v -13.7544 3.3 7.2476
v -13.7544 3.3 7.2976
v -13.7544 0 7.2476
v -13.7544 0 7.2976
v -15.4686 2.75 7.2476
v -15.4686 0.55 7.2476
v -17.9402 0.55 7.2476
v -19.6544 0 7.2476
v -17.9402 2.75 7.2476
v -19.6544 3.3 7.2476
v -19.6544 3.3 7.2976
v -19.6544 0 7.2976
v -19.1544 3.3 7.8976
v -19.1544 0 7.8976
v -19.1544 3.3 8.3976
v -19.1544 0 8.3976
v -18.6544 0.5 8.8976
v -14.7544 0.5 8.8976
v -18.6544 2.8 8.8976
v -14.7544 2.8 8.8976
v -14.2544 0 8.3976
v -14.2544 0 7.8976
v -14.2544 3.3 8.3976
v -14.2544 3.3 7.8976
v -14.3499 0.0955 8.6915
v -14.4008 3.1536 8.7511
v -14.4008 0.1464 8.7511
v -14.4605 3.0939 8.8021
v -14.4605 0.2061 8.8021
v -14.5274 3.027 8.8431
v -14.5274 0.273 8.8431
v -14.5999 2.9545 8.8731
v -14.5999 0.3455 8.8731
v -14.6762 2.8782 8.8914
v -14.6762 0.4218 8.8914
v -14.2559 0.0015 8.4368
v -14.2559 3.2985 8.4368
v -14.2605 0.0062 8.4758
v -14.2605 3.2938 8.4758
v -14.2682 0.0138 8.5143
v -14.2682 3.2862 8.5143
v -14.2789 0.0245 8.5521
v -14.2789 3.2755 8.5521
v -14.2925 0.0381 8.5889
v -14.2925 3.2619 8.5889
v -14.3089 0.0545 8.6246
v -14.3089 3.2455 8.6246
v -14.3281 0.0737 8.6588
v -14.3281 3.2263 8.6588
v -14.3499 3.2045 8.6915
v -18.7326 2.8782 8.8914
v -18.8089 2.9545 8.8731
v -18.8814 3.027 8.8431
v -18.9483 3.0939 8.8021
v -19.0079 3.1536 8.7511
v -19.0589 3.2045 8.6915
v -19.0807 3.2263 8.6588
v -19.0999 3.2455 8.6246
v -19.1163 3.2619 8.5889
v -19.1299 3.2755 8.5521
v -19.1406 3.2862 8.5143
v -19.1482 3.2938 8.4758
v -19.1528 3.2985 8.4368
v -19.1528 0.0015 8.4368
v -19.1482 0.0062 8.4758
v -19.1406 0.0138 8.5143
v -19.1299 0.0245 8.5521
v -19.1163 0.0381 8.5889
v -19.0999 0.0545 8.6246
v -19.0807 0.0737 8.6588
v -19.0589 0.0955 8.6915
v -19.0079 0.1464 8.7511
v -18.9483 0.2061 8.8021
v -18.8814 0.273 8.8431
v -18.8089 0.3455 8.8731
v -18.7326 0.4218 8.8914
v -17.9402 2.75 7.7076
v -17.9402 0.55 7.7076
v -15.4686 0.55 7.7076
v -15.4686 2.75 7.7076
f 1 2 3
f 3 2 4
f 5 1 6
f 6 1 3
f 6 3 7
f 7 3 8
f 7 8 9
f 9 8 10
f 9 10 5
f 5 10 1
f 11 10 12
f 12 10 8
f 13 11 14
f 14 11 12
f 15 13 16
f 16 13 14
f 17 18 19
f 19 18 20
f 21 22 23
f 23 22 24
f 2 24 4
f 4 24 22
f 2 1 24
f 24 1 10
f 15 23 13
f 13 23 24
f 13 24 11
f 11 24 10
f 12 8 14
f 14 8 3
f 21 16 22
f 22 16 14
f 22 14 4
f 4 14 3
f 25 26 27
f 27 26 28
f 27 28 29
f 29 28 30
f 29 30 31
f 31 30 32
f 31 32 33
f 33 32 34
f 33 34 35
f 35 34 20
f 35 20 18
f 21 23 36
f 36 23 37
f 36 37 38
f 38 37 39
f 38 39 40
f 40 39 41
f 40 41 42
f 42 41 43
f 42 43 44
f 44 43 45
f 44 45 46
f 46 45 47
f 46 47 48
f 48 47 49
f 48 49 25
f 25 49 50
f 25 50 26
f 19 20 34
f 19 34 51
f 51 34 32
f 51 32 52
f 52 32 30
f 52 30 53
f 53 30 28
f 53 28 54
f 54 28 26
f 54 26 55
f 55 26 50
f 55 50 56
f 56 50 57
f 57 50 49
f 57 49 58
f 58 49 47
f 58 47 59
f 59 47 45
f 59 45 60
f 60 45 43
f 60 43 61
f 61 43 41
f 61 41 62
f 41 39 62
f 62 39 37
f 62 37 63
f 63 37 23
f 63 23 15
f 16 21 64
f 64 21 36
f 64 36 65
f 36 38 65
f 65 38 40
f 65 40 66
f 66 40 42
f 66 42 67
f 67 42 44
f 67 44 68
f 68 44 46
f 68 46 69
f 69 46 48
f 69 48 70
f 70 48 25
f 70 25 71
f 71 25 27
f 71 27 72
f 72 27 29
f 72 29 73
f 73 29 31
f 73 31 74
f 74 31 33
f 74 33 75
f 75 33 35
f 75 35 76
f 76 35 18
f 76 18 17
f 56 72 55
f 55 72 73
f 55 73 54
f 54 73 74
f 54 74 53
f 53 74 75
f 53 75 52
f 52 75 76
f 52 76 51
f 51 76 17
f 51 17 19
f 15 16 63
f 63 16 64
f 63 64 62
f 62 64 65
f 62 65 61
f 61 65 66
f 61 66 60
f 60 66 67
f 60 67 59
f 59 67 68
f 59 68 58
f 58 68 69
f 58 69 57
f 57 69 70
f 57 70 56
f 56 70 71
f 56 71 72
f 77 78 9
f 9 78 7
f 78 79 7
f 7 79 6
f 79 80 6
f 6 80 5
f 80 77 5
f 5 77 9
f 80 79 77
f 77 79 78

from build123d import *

# Parameters (mm, degrees)
BOSS_EXTRUDE1_DEPTH = 3.3
FILLET1_R           = 0.5
SKETCH2_W           = 2.471601058
SKETCH2_H           = 2.200098802
CUT_EXTRUDE1_DEPTH  = 0.46


with BuildPart() as part:
    # Sketch1 → Boss-Extrude1 (new body)
    with BuildSketch(Plane(origin=(0, 0, 0), x_dir=(1, 0, 0), z_dir=(0, 1, 0))):
        Polygon((-19.154390691, -8.897595786), (-14.254390691, -8.897595786), (-14.254390691, -7.897595786), (-13.754390691, -7.297595786), (-13.754390691, -7.247595786), (-19.654390691, -7.247595786), (-19.654390691, -7.297595786), (-19.154390691, -7.897595786), align=None)
    extrude(amount=BOSS_EXTRUDE1_DEPTH)

    # Fillet1
    fillet1_edges = [part.edges().sort_by_distance(p)[0] for p in [
        (-14.254390691, 1.65, 8.897595786),
        (-19.154390691, 1.65, 8.897595786),
        (-16.704390691, 3.3, 8.897595786),
        (-16.704390691, 0, 8.897595786),
    ]]
    fillet(fillet1_edges, radius=FILLET1_R)

    # Sketch2 → Cut-Extrude1 (cut)
    with BuildSketch(Plane(origin=(0, 0, 7.247595786), x_dir=(-1, 0, 0), z_dir=(0, 0, -1))):
        with Locations((16.704390691, 1.65)):
            Rectangle(SKETCH2_W, SKETCH2_H)
    extrude(amount=-CUT_EXTRUDE1_DEPTH, mode=Mode.SUBTRACT)


solid = part.part
